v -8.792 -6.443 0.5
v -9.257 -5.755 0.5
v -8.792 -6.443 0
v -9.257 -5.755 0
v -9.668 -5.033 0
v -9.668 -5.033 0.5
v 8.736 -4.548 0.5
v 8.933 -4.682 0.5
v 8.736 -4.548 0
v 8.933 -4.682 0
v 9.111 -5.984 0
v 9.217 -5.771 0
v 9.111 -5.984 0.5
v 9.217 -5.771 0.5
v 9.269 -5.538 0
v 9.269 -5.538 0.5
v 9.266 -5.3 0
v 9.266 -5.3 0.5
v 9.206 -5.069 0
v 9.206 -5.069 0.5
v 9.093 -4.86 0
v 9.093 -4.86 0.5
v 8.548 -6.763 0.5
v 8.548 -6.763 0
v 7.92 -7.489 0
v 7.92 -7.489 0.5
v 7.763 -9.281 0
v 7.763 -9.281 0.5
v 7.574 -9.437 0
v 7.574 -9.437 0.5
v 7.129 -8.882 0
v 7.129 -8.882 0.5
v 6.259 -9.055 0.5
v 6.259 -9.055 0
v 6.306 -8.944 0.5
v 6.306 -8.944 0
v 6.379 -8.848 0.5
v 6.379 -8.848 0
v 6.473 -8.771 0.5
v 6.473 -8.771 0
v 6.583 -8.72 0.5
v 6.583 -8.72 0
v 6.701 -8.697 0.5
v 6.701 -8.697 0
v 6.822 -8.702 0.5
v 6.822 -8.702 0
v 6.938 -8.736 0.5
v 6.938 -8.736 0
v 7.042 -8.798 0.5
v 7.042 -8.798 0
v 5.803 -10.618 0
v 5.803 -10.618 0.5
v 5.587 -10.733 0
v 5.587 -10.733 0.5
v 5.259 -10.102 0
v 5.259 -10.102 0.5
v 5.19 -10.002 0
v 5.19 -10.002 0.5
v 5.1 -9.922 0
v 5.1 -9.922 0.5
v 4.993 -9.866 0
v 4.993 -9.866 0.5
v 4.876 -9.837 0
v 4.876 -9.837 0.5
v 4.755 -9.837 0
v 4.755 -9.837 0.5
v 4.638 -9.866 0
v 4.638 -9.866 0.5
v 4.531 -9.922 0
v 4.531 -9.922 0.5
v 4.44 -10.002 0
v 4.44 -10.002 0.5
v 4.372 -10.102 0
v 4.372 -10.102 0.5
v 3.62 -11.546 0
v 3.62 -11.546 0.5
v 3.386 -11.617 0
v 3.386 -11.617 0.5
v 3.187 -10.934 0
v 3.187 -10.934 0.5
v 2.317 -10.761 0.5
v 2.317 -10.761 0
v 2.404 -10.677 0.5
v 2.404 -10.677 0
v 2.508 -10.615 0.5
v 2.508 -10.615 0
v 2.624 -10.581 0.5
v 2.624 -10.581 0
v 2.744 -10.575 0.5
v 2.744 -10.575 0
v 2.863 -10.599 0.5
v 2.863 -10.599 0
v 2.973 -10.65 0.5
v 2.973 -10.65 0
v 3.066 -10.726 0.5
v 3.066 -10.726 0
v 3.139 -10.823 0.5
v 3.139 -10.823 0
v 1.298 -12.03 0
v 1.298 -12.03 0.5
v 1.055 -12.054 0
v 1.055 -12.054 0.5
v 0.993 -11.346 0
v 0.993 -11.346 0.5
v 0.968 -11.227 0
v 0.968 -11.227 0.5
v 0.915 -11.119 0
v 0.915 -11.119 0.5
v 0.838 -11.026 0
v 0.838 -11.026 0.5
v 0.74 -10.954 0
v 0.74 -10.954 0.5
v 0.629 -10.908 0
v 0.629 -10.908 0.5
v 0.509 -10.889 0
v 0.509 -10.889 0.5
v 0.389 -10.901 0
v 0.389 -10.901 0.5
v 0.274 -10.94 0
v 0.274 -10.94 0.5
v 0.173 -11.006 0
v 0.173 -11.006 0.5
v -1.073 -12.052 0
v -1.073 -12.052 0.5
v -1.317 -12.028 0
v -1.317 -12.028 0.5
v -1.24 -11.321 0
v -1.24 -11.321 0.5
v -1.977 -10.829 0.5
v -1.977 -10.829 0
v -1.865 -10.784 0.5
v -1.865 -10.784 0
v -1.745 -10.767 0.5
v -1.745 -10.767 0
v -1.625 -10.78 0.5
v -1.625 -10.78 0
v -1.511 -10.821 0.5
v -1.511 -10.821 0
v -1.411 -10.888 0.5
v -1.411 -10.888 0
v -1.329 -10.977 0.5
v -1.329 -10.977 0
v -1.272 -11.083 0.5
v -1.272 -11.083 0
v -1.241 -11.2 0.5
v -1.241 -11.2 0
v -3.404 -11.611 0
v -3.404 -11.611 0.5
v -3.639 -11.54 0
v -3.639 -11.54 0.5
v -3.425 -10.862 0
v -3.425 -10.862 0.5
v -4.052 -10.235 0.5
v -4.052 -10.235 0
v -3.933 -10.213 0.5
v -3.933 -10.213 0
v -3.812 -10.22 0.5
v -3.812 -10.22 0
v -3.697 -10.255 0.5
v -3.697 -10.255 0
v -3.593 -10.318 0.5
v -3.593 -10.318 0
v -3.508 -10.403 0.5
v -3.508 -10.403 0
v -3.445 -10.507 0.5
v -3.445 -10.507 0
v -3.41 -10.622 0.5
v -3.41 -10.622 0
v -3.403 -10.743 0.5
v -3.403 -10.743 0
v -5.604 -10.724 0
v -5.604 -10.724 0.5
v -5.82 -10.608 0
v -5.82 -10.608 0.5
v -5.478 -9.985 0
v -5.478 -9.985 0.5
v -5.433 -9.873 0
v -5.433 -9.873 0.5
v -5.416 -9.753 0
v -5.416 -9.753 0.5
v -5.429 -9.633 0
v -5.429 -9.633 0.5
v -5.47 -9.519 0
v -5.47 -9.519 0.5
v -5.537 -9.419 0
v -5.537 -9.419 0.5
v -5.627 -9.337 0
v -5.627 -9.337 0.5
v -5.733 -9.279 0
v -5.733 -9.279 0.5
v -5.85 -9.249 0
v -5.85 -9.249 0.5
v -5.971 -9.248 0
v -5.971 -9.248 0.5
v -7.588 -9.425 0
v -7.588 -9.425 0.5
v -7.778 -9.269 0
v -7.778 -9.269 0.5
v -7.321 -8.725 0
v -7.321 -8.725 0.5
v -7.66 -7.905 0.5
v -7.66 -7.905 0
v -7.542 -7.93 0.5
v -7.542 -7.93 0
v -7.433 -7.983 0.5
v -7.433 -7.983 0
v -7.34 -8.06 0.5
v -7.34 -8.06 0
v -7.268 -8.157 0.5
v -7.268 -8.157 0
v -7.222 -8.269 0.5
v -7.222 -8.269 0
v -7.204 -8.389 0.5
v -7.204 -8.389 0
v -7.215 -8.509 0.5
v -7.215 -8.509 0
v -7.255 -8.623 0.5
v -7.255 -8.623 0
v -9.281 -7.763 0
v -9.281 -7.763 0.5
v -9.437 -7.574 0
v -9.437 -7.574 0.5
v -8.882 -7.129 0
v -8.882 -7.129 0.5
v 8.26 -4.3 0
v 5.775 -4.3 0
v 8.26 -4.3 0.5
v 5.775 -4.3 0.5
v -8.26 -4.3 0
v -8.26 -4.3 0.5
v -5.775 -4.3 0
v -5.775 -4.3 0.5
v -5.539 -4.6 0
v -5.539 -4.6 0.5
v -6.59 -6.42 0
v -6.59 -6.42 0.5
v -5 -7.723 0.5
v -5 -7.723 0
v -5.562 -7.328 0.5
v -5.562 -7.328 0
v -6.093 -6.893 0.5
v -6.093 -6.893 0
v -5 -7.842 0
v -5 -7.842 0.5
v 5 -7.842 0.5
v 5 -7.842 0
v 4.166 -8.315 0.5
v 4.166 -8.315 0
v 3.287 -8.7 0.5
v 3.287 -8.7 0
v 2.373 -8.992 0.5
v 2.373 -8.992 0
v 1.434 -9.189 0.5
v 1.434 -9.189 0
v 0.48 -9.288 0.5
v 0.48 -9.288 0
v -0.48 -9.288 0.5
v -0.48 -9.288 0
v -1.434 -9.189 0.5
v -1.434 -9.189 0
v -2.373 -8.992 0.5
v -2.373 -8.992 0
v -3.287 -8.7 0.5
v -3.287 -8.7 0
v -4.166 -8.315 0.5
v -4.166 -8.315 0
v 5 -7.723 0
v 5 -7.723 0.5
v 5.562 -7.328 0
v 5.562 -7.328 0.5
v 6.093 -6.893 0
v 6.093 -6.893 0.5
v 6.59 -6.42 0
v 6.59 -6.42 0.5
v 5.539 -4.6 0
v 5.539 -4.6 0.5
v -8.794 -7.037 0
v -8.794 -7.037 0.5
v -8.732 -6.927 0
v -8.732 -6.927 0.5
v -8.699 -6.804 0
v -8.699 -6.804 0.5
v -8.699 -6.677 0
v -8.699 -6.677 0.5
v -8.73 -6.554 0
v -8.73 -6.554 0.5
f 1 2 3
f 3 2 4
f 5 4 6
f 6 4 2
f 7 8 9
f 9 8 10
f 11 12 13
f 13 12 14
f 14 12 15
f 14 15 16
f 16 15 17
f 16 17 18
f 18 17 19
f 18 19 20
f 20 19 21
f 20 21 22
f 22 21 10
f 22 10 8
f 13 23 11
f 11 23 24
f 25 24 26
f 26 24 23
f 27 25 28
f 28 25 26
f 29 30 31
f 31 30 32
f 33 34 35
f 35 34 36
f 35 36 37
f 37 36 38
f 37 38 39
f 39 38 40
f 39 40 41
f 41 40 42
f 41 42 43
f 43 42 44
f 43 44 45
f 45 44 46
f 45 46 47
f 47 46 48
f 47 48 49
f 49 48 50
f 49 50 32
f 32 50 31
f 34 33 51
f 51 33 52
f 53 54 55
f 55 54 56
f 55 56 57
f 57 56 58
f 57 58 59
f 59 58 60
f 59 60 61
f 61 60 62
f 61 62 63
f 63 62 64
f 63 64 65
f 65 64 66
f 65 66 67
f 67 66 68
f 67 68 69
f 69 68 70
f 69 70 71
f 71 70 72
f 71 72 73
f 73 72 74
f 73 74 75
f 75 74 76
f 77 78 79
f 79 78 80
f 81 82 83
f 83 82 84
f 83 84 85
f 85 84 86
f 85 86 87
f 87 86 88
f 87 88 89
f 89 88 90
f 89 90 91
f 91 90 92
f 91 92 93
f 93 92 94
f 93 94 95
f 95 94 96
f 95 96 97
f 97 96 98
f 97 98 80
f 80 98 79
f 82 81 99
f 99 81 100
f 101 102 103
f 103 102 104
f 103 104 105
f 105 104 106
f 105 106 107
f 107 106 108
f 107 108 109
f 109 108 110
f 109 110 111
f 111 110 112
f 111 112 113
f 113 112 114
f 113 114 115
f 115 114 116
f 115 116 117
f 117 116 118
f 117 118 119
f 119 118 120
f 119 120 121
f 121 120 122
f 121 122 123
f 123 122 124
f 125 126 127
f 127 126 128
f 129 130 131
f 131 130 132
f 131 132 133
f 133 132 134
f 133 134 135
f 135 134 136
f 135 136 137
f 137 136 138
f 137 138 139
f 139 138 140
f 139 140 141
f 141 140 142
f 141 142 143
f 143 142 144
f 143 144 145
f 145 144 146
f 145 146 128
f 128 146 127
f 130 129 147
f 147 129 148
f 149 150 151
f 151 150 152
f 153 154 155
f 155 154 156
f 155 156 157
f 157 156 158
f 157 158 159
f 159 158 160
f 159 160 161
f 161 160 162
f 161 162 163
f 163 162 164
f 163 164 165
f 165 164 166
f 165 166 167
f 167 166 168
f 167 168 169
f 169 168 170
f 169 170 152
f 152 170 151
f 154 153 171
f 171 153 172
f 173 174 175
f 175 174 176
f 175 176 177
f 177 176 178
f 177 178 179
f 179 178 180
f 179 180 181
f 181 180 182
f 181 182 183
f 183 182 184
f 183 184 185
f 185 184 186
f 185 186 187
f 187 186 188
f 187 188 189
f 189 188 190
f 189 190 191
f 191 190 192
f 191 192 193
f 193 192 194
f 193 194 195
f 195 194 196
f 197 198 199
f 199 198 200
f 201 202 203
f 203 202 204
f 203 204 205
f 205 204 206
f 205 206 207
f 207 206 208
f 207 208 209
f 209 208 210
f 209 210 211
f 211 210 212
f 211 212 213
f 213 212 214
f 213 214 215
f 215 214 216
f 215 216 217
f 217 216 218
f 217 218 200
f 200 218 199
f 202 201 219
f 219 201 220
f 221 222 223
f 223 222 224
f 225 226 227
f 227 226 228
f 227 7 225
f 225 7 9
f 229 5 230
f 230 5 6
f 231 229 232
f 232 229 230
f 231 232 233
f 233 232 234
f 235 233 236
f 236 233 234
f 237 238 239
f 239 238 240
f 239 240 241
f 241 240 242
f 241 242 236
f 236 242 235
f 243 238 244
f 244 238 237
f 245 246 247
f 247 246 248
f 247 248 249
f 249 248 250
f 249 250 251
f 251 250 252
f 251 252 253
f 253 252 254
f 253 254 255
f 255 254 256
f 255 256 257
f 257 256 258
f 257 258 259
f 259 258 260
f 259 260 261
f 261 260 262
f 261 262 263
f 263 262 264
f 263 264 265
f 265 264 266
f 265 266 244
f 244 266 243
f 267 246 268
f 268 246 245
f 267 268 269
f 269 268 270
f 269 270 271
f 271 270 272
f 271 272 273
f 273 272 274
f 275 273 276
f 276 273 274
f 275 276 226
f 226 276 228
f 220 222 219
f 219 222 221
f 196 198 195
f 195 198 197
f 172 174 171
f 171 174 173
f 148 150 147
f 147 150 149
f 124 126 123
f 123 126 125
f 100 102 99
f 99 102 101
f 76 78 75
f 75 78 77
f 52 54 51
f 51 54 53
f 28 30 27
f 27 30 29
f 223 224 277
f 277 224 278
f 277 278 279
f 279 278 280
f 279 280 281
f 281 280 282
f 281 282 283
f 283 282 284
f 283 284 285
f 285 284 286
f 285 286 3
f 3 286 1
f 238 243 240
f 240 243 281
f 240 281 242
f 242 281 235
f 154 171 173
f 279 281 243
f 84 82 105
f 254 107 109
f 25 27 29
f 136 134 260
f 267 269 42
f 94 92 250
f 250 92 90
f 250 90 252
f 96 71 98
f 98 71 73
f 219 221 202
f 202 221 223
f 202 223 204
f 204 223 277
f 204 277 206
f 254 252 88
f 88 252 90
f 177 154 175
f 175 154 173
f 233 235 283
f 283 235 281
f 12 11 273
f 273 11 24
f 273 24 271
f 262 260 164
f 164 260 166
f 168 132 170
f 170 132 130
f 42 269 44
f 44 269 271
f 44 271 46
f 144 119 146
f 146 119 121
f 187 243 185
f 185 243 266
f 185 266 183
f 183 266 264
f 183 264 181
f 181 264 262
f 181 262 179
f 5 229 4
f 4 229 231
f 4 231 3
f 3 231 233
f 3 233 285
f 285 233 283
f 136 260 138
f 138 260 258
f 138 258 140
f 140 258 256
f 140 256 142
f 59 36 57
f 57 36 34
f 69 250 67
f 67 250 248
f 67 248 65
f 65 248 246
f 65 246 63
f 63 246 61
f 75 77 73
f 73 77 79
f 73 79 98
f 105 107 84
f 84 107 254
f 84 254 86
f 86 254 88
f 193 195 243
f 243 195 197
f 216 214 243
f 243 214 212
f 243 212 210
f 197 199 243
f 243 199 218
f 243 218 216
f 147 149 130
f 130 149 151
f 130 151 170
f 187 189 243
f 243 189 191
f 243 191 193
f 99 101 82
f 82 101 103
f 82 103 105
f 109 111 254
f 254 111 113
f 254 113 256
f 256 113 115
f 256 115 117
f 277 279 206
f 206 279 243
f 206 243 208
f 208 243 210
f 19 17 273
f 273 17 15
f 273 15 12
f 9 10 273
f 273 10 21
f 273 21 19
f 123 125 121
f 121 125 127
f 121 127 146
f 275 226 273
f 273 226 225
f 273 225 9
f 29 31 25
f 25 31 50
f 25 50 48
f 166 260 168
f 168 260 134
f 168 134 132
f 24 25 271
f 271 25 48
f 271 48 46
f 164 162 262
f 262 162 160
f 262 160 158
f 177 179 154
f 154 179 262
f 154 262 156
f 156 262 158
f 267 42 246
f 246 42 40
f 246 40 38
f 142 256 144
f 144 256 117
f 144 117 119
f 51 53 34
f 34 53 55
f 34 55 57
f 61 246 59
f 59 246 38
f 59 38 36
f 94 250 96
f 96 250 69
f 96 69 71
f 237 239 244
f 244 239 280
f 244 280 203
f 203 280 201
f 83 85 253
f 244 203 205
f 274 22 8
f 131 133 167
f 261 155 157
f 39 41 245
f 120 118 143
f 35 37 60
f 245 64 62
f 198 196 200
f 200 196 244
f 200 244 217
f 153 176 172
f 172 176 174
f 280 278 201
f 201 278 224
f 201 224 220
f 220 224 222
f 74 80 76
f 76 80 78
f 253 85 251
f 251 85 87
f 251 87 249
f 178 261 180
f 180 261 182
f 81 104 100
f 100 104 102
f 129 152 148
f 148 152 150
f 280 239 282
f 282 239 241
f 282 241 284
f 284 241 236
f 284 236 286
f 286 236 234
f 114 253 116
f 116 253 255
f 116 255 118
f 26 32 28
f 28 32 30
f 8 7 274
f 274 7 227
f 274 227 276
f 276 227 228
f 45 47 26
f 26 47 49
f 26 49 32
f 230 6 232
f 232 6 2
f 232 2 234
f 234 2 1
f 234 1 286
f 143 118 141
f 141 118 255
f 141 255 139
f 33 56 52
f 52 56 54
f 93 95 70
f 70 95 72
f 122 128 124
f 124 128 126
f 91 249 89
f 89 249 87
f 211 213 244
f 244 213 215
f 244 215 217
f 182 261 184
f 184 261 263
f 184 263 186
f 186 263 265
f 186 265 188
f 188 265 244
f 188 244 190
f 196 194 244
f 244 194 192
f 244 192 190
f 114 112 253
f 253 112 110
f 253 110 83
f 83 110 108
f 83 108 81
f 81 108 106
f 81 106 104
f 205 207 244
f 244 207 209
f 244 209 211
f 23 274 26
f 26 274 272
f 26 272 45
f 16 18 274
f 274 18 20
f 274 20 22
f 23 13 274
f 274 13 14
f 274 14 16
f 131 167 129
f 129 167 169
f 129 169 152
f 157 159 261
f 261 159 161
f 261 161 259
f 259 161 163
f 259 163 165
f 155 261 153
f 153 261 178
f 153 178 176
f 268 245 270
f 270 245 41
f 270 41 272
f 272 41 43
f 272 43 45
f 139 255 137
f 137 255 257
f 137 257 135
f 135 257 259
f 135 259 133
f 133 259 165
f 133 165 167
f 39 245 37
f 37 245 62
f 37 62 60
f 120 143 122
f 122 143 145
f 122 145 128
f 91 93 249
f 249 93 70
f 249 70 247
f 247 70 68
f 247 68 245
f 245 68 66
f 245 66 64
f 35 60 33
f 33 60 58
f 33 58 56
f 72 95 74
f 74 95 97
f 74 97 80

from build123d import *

# Parameters (mm, degrees)
OTHER_10076_5_DEPTH = 0.5
CUT_EXTRUDE1_REACH  = 18.147


# Read off the part's stored shape, not the designer's step: 10076-5
with BuildPart() as part:
    # Other 10076-5 outline → Other 10076-5 (new body)
    with BuildSketch(Plane.XY):
        with BuildLine():
            ThreePointArc((7.573674013, -9.436602245), (7.668819519, -9.359444812), (7.763179028, -9.281328104))
            Line((7.763179028, -9.281328104), (7.919995926, -7.488902759))
            ThreePointArc((7.919995926, -7.488902759), (8.548470738, -6.76266575), (9.110578105, -5.983925684))
            ThreePointArc((9.110578105, -5.983925684), (9.242448569, -5.182849851), (8.736493865, -4.547930843))
            Line((8.736493865, -4.547930843), (8.260223146, -4.3))
            Line((8.260223146, -4.3), (5.774945887, -4.3))
            ThreePointArc((5.774945887, -4.3), (5.659072475, -4.451392897), (5.53923133, -4.5996648))
            Line((5.53923133, -4.5996648), (6.59, -6.419649523))
            ThreePointArc((6.59, -6.419649523), (5.831509763, -7.1157216), (5, -7.722693831))
            Line((5, -7.722693831), (5, -7.841555968))
            ThreePointArc((5, -7.841555968), (0, -9.3), (-5, -7.841555968))
            Line((-5, -7.841555968), (-5, -7.722693831))
            ThreePointArc((-5, -7.722693831), (-5.831509763, -7.1157216), (-6.59, -6.419649523))
            Line((-6.59, -6.419649523), (-5.53923133, -4.5996648))
            ThreePointArc((-5.53923133, -4.5996648), (-5.659072475, -4.451392897), (-5.774945887, -4.3))
            Line((-5.774945887, -4.3), (-8.260223146, -4.3))
            Line((-8.260223146, -4.3), (-10.732831081, -5.58715822))
            ThreePointArc((-10.732831081, -5.58715822), (-10.675718173, -5.6955282), (-10.617511084, -5.803314431))
            Line((-10.617511084, -5.803314431), (-9.055174855, -6.258693914))
            ThreePointArc((-9.055174855, -6.258693914), (-8.704696722, -6.64117368), (-8.882127626, -7.128661083))
            Line((-8.882127626, -7.128661083), (-9.436602245, -7.573674013))
            ThreePointArc((-9.436602245, -7.573674013), (-9.359444812, -7.668819519), (-9.281328104, -7.763179028))
            Line((-9.281328104, -7.763179028), (-7.660171598, -7.905011844))
            ThreePointArc((-7.660171598, -7.905011844), (-7.241809703, -8.211767477), (-7.320727248, -8.724502998))
            Line((-7.320727248, -8.724502998), (-7.777730077, -9.269137762))
            ThreePointArc((-7.777730077, -9.269137762), (-7.683493234, -9.347402405), (-7.588468891, -9.424709008))
            Line((-7.588468891, -9.424709008), (-5.970792243, -9.247544602))
            ThreePointArc((-5.970792243, -9.247544602), (-5.500623999, -9.466787654), (-5.477995427, -9.985067155))
            Line((-5.477995427, -9.985067155), (-5.819964104, -10.608393744))
            ThreePointArc((-5.819964104, -10.608393744), (-5.712269322, -10.666769858), (-5.603989074, -10.724052707))
            Line((-5.603989074, -10.724052707), (-4.05195869, -10.234699407))
            ThreePointArc((-4.05195869, -10.234699407), (-3.548052399, -10.358004491), (-3.424747314, -10.861910782))
            Line((-3.424747314, -10.861910782), (-3.638540174, -11.539975104))
            ThreePointArc((-3.638540174, -11.539975104), (-3.521526102, -11.576219327), (-3.404151099, -11.611277074))
            Line((-3.404151099, -11.611277074), (-1.977410637, -10.828540453))
            ThreePointArc((-1.977410637, -10.828540453), (-1.459131136, -10.851169025), (-1.239888083, -11.321337268))
            Line((-1.239888083, -11.321337268), (-1.317289186, -12.028081692))
            ThreePointArc((-1.317289186, -12.028081692), (-1.195452609, -12.04080118), (-1.073493507, -12.052286575))
            Line((-1.073493507, -12.052286575), (0.173128198, -11.006246762))
            ThreePointArc((0.173128198, -11.006246762), (0.685863719, -10.927329218), (0.992619352, -11.345691113))
            Line((0.992619352, -11.345691113), (1.054584487, -12.053955847))
            ThreePointArc((1.054584487, -12.053955847), (1.176561457, -12.042661796), (1.298417839, -12.030133462))
            Line((1.298417839, -12.030133462), (2.317013814, -10.760989181))
            ThreePointArc((2.317013814, -10.760989181), (2.804501216, -10.583558277), (3.186980982, -10.93403641))
            Line((3.186980982, -10.93403641), (3.38593107, -11.616603238))
            ThreePointArc((3.38593107, -11.616603238), (3.503360927, -11.581729673), (3.620431715, -11.545669067))
            Line((3.620431715, -11.545669067), (4.371857887, -10.10219282))
            ThreePointArc((4.371857887, -10.10219282), (4.815363304, -9.833067127), (5.258868721, -10.10219282))
            Line((5.258868721, -10.10219282), (5.58715822, -10.732831081))
            ThreePointArc((5.58715822, -10.732831081), (5.6955282, -10.675718173), (5.803314431, -10.617511084))
            Line((5.803314431, -10.617511084), (6.258693914, -9.055174855))
            ThreePointArc((6.258693914, -9.055174855), (6.64117368, -8.704696722), (7.128661083, -8.882127626))
            Line((7.128661083, -8.882127626), (7.573674013, -9.436602245))
        make_face()
    extrude(amount=OTHER_10076_5_DEPTH)

    # Sketch1 → Cut-Extrude1 (cut, up to next)
    with BuildSketch(Plane.XY.offset(0.5), mode=Mode.PRIVATE) as cut_extrude1_sk1:
        with BuildLine():
            Line((-9.668418082, -5.033059884), (-10.732831081, -5.58715822))
            ThreePointArc((-10.732831081, -5.58715822), (-10.675718173, -5.6955282), (-10.617511084, -5.803314431))
            Line((-10.617511084, -5.803314431), (-9.055174855, -6.258693914))
            ThreePointArc((-9.055174855, -6.258693914), (-8.908251896, -6.329177308), (-8.791795969, -6.443160998))
            ThreePointArc((-8.791795969, -6.443160998), (-9.25699584, -5.754826497), (-9.668418082, -5.033059884))
        make_face()
    cut_extrude1_tool1 = extrude(cut_extrude1_sk1.sketch, amount=-CUT_EXTRUDE1_REACH, mode=Mode.PRIVATE) & part.part
    add(cut_extrude1_tool1.solids().sort_by_distance((-9.821515, -5.682947, 0.5))[0], mode=Mode.SUBTRACT)


solid = part.part
